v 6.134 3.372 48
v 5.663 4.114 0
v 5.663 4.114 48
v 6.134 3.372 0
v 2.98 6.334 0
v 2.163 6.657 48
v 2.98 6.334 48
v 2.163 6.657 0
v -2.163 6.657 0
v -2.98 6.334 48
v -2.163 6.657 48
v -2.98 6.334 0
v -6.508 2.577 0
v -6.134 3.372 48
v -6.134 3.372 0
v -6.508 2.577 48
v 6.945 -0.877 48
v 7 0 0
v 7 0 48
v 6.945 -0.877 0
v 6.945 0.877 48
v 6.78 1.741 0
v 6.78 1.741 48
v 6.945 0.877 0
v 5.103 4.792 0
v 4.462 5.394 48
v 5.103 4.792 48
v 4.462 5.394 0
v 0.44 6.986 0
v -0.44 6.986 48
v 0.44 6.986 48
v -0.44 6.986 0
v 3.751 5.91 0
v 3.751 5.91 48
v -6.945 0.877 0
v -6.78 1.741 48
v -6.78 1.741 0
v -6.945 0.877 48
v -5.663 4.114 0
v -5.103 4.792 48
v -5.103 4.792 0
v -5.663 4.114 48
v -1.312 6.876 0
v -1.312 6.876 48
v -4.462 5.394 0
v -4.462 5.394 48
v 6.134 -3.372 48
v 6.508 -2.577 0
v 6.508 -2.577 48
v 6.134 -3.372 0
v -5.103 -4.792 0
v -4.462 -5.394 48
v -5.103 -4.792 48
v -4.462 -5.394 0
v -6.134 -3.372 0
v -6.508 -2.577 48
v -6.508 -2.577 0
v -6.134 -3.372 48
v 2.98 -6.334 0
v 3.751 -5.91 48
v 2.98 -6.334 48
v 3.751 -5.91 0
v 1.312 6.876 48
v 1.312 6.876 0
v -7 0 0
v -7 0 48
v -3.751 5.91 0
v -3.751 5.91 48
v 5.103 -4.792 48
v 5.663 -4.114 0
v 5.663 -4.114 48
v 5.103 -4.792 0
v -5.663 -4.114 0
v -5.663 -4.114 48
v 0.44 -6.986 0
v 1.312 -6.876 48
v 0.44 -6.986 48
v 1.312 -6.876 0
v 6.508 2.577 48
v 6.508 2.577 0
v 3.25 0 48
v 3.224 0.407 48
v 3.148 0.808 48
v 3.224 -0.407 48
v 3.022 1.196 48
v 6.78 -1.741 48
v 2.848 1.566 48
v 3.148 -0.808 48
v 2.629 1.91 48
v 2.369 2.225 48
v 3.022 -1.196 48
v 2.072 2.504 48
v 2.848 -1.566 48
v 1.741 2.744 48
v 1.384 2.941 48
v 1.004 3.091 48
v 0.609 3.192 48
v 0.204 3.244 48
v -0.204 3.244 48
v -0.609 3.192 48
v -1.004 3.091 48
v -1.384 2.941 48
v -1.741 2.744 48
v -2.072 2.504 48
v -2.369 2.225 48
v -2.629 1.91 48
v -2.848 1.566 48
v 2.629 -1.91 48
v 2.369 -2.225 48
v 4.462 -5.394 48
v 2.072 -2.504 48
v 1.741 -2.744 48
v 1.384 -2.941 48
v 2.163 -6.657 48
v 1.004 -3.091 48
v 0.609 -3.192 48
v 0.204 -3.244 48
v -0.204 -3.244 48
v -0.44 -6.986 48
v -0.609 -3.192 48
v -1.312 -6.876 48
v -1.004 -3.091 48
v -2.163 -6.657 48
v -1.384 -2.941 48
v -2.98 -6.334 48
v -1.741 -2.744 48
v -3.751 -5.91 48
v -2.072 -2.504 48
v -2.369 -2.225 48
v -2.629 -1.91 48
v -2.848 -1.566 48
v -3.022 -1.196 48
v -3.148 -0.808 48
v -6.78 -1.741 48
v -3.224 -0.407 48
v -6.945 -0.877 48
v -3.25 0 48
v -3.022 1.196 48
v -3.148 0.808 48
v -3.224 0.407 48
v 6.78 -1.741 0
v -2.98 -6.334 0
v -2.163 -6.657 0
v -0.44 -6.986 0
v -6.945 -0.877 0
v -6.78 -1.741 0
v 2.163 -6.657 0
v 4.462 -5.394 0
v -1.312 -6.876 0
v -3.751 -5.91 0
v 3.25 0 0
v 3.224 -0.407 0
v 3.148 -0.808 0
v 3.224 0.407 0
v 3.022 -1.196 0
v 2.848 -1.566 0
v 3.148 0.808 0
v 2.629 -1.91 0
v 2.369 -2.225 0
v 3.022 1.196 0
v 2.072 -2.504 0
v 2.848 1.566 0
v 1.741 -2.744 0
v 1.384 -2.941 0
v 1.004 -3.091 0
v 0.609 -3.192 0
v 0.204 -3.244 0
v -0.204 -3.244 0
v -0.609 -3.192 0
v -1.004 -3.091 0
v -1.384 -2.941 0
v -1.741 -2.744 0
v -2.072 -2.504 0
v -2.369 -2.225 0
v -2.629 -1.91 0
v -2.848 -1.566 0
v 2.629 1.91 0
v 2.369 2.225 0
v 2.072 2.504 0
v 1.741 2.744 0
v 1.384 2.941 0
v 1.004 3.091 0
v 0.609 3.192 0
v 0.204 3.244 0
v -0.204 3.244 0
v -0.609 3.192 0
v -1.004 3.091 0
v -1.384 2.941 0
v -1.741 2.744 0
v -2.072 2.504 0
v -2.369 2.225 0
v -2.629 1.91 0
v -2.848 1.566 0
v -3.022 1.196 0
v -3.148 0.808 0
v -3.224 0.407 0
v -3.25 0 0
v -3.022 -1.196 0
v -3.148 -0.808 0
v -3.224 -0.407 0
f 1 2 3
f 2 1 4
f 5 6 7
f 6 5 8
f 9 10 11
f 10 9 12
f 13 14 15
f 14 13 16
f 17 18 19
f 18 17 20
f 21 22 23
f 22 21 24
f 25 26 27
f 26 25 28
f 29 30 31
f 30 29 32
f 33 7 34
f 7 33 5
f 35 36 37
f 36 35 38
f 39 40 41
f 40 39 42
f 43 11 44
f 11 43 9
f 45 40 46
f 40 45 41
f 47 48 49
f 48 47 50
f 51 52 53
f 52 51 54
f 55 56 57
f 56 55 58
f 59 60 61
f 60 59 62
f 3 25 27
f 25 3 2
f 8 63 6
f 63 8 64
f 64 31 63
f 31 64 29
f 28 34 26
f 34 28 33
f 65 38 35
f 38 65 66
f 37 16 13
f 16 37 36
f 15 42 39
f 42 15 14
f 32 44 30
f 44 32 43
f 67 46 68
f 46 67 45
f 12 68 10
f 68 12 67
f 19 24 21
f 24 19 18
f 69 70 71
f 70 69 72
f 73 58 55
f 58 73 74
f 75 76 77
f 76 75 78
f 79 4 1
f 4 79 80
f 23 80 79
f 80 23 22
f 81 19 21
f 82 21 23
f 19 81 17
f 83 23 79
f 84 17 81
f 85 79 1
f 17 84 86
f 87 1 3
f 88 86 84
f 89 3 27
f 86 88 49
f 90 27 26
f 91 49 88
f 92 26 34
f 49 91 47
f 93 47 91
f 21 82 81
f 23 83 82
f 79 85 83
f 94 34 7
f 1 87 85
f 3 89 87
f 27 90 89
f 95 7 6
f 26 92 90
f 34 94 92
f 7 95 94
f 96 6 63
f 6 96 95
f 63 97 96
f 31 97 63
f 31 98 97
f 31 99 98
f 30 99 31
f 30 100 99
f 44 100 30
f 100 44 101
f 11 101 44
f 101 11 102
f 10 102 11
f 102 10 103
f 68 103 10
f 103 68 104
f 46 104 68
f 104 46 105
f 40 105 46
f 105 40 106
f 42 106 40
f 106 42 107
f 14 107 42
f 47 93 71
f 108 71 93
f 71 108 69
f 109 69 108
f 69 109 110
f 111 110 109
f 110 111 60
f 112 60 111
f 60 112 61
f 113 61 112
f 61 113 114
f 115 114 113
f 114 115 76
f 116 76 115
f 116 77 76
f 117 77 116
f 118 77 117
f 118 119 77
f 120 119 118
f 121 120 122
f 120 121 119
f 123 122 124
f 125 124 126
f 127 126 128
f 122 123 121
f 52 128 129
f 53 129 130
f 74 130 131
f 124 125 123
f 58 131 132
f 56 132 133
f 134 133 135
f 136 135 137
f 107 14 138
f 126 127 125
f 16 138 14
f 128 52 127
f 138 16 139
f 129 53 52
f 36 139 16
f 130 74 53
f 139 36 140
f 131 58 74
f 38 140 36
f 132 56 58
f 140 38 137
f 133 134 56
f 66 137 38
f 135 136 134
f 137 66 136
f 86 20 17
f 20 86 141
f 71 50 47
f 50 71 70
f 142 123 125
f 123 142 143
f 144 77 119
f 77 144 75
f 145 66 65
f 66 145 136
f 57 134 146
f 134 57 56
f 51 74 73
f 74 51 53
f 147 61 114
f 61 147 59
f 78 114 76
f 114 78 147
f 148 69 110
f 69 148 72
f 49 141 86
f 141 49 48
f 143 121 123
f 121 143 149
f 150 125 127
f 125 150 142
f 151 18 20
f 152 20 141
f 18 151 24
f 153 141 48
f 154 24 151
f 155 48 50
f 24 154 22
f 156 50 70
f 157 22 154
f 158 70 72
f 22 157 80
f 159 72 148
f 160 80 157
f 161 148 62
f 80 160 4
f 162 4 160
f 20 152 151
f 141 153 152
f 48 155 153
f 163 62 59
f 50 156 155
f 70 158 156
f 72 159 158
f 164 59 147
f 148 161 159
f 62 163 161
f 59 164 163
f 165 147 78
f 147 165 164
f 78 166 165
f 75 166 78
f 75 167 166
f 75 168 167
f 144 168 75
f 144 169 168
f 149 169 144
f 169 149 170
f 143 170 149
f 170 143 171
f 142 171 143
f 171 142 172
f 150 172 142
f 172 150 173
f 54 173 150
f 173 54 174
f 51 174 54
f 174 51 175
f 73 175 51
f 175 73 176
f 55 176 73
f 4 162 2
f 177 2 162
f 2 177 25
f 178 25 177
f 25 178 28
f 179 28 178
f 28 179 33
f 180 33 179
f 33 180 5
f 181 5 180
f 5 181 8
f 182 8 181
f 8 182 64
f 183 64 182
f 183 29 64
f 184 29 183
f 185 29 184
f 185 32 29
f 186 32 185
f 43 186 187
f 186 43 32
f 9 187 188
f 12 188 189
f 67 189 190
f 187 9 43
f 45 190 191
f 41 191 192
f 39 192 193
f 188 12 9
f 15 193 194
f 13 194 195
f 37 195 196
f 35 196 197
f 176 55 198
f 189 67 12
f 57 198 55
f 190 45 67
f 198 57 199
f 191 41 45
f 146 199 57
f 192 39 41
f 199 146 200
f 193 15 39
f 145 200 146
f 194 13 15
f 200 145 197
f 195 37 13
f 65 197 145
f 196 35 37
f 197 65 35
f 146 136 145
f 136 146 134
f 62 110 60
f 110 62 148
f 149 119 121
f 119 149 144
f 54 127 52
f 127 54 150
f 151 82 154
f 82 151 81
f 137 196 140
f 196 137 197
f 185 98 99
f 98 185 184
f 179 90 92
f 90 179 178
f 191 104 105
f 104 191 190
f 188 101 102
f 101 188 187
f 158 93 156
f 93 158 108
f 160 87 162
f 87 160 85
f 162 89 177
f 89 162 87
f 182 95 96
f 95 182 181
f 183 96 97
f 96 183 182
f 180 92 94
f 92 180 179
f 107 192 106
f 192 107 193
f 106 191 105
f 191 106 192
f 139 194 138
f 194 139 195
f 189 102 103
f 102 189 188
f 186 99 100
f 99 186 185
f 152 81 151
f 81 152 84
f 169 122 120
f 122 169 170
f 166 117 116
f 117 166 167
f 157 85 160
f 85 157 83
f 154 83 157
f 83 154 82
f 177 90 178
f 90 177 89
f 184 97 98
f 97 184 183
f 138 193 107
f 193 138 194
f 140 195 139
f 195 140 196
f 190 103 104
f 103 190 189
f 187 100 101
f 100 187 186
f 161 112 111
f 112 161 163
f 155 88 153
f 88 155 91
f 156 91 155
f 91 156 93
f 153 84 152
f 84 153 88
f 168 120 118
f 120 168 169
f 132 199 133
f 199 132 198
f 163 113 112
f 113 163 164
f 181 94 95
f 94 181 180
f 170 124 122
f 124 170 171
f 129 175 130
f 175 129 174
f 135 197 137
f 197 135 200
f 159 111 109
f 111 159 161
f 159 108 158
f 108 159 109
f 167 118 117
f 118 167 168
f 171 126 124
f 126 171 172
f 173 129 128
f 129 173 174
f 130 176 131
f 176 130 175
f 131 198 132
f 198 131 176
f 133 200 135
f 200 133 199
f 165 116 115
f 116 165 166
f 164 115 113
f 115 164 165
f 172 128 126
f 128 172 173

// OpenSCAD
$fn = 50;


difference() {
	union() {
		cylinder(h = 48, r = 7.0000000000);
	}
	union() {
		cylinder(h = 48, r = 3.2500000000);
		cylinder(h = 48, r = 3.2500000000);
		cylinder(h = 48, r = 1.8000000000);
		cylinder(h = 48, r = 1.8000000000);
		cylinder(h = 48, r = 1.8000000000);
		cylinder(h = 48, r = 1.8000000000);
		cylinder(h = 48, r = 1.8000000000);
		cylinder(h = 48, r = 1.8000000000);
	}
}
